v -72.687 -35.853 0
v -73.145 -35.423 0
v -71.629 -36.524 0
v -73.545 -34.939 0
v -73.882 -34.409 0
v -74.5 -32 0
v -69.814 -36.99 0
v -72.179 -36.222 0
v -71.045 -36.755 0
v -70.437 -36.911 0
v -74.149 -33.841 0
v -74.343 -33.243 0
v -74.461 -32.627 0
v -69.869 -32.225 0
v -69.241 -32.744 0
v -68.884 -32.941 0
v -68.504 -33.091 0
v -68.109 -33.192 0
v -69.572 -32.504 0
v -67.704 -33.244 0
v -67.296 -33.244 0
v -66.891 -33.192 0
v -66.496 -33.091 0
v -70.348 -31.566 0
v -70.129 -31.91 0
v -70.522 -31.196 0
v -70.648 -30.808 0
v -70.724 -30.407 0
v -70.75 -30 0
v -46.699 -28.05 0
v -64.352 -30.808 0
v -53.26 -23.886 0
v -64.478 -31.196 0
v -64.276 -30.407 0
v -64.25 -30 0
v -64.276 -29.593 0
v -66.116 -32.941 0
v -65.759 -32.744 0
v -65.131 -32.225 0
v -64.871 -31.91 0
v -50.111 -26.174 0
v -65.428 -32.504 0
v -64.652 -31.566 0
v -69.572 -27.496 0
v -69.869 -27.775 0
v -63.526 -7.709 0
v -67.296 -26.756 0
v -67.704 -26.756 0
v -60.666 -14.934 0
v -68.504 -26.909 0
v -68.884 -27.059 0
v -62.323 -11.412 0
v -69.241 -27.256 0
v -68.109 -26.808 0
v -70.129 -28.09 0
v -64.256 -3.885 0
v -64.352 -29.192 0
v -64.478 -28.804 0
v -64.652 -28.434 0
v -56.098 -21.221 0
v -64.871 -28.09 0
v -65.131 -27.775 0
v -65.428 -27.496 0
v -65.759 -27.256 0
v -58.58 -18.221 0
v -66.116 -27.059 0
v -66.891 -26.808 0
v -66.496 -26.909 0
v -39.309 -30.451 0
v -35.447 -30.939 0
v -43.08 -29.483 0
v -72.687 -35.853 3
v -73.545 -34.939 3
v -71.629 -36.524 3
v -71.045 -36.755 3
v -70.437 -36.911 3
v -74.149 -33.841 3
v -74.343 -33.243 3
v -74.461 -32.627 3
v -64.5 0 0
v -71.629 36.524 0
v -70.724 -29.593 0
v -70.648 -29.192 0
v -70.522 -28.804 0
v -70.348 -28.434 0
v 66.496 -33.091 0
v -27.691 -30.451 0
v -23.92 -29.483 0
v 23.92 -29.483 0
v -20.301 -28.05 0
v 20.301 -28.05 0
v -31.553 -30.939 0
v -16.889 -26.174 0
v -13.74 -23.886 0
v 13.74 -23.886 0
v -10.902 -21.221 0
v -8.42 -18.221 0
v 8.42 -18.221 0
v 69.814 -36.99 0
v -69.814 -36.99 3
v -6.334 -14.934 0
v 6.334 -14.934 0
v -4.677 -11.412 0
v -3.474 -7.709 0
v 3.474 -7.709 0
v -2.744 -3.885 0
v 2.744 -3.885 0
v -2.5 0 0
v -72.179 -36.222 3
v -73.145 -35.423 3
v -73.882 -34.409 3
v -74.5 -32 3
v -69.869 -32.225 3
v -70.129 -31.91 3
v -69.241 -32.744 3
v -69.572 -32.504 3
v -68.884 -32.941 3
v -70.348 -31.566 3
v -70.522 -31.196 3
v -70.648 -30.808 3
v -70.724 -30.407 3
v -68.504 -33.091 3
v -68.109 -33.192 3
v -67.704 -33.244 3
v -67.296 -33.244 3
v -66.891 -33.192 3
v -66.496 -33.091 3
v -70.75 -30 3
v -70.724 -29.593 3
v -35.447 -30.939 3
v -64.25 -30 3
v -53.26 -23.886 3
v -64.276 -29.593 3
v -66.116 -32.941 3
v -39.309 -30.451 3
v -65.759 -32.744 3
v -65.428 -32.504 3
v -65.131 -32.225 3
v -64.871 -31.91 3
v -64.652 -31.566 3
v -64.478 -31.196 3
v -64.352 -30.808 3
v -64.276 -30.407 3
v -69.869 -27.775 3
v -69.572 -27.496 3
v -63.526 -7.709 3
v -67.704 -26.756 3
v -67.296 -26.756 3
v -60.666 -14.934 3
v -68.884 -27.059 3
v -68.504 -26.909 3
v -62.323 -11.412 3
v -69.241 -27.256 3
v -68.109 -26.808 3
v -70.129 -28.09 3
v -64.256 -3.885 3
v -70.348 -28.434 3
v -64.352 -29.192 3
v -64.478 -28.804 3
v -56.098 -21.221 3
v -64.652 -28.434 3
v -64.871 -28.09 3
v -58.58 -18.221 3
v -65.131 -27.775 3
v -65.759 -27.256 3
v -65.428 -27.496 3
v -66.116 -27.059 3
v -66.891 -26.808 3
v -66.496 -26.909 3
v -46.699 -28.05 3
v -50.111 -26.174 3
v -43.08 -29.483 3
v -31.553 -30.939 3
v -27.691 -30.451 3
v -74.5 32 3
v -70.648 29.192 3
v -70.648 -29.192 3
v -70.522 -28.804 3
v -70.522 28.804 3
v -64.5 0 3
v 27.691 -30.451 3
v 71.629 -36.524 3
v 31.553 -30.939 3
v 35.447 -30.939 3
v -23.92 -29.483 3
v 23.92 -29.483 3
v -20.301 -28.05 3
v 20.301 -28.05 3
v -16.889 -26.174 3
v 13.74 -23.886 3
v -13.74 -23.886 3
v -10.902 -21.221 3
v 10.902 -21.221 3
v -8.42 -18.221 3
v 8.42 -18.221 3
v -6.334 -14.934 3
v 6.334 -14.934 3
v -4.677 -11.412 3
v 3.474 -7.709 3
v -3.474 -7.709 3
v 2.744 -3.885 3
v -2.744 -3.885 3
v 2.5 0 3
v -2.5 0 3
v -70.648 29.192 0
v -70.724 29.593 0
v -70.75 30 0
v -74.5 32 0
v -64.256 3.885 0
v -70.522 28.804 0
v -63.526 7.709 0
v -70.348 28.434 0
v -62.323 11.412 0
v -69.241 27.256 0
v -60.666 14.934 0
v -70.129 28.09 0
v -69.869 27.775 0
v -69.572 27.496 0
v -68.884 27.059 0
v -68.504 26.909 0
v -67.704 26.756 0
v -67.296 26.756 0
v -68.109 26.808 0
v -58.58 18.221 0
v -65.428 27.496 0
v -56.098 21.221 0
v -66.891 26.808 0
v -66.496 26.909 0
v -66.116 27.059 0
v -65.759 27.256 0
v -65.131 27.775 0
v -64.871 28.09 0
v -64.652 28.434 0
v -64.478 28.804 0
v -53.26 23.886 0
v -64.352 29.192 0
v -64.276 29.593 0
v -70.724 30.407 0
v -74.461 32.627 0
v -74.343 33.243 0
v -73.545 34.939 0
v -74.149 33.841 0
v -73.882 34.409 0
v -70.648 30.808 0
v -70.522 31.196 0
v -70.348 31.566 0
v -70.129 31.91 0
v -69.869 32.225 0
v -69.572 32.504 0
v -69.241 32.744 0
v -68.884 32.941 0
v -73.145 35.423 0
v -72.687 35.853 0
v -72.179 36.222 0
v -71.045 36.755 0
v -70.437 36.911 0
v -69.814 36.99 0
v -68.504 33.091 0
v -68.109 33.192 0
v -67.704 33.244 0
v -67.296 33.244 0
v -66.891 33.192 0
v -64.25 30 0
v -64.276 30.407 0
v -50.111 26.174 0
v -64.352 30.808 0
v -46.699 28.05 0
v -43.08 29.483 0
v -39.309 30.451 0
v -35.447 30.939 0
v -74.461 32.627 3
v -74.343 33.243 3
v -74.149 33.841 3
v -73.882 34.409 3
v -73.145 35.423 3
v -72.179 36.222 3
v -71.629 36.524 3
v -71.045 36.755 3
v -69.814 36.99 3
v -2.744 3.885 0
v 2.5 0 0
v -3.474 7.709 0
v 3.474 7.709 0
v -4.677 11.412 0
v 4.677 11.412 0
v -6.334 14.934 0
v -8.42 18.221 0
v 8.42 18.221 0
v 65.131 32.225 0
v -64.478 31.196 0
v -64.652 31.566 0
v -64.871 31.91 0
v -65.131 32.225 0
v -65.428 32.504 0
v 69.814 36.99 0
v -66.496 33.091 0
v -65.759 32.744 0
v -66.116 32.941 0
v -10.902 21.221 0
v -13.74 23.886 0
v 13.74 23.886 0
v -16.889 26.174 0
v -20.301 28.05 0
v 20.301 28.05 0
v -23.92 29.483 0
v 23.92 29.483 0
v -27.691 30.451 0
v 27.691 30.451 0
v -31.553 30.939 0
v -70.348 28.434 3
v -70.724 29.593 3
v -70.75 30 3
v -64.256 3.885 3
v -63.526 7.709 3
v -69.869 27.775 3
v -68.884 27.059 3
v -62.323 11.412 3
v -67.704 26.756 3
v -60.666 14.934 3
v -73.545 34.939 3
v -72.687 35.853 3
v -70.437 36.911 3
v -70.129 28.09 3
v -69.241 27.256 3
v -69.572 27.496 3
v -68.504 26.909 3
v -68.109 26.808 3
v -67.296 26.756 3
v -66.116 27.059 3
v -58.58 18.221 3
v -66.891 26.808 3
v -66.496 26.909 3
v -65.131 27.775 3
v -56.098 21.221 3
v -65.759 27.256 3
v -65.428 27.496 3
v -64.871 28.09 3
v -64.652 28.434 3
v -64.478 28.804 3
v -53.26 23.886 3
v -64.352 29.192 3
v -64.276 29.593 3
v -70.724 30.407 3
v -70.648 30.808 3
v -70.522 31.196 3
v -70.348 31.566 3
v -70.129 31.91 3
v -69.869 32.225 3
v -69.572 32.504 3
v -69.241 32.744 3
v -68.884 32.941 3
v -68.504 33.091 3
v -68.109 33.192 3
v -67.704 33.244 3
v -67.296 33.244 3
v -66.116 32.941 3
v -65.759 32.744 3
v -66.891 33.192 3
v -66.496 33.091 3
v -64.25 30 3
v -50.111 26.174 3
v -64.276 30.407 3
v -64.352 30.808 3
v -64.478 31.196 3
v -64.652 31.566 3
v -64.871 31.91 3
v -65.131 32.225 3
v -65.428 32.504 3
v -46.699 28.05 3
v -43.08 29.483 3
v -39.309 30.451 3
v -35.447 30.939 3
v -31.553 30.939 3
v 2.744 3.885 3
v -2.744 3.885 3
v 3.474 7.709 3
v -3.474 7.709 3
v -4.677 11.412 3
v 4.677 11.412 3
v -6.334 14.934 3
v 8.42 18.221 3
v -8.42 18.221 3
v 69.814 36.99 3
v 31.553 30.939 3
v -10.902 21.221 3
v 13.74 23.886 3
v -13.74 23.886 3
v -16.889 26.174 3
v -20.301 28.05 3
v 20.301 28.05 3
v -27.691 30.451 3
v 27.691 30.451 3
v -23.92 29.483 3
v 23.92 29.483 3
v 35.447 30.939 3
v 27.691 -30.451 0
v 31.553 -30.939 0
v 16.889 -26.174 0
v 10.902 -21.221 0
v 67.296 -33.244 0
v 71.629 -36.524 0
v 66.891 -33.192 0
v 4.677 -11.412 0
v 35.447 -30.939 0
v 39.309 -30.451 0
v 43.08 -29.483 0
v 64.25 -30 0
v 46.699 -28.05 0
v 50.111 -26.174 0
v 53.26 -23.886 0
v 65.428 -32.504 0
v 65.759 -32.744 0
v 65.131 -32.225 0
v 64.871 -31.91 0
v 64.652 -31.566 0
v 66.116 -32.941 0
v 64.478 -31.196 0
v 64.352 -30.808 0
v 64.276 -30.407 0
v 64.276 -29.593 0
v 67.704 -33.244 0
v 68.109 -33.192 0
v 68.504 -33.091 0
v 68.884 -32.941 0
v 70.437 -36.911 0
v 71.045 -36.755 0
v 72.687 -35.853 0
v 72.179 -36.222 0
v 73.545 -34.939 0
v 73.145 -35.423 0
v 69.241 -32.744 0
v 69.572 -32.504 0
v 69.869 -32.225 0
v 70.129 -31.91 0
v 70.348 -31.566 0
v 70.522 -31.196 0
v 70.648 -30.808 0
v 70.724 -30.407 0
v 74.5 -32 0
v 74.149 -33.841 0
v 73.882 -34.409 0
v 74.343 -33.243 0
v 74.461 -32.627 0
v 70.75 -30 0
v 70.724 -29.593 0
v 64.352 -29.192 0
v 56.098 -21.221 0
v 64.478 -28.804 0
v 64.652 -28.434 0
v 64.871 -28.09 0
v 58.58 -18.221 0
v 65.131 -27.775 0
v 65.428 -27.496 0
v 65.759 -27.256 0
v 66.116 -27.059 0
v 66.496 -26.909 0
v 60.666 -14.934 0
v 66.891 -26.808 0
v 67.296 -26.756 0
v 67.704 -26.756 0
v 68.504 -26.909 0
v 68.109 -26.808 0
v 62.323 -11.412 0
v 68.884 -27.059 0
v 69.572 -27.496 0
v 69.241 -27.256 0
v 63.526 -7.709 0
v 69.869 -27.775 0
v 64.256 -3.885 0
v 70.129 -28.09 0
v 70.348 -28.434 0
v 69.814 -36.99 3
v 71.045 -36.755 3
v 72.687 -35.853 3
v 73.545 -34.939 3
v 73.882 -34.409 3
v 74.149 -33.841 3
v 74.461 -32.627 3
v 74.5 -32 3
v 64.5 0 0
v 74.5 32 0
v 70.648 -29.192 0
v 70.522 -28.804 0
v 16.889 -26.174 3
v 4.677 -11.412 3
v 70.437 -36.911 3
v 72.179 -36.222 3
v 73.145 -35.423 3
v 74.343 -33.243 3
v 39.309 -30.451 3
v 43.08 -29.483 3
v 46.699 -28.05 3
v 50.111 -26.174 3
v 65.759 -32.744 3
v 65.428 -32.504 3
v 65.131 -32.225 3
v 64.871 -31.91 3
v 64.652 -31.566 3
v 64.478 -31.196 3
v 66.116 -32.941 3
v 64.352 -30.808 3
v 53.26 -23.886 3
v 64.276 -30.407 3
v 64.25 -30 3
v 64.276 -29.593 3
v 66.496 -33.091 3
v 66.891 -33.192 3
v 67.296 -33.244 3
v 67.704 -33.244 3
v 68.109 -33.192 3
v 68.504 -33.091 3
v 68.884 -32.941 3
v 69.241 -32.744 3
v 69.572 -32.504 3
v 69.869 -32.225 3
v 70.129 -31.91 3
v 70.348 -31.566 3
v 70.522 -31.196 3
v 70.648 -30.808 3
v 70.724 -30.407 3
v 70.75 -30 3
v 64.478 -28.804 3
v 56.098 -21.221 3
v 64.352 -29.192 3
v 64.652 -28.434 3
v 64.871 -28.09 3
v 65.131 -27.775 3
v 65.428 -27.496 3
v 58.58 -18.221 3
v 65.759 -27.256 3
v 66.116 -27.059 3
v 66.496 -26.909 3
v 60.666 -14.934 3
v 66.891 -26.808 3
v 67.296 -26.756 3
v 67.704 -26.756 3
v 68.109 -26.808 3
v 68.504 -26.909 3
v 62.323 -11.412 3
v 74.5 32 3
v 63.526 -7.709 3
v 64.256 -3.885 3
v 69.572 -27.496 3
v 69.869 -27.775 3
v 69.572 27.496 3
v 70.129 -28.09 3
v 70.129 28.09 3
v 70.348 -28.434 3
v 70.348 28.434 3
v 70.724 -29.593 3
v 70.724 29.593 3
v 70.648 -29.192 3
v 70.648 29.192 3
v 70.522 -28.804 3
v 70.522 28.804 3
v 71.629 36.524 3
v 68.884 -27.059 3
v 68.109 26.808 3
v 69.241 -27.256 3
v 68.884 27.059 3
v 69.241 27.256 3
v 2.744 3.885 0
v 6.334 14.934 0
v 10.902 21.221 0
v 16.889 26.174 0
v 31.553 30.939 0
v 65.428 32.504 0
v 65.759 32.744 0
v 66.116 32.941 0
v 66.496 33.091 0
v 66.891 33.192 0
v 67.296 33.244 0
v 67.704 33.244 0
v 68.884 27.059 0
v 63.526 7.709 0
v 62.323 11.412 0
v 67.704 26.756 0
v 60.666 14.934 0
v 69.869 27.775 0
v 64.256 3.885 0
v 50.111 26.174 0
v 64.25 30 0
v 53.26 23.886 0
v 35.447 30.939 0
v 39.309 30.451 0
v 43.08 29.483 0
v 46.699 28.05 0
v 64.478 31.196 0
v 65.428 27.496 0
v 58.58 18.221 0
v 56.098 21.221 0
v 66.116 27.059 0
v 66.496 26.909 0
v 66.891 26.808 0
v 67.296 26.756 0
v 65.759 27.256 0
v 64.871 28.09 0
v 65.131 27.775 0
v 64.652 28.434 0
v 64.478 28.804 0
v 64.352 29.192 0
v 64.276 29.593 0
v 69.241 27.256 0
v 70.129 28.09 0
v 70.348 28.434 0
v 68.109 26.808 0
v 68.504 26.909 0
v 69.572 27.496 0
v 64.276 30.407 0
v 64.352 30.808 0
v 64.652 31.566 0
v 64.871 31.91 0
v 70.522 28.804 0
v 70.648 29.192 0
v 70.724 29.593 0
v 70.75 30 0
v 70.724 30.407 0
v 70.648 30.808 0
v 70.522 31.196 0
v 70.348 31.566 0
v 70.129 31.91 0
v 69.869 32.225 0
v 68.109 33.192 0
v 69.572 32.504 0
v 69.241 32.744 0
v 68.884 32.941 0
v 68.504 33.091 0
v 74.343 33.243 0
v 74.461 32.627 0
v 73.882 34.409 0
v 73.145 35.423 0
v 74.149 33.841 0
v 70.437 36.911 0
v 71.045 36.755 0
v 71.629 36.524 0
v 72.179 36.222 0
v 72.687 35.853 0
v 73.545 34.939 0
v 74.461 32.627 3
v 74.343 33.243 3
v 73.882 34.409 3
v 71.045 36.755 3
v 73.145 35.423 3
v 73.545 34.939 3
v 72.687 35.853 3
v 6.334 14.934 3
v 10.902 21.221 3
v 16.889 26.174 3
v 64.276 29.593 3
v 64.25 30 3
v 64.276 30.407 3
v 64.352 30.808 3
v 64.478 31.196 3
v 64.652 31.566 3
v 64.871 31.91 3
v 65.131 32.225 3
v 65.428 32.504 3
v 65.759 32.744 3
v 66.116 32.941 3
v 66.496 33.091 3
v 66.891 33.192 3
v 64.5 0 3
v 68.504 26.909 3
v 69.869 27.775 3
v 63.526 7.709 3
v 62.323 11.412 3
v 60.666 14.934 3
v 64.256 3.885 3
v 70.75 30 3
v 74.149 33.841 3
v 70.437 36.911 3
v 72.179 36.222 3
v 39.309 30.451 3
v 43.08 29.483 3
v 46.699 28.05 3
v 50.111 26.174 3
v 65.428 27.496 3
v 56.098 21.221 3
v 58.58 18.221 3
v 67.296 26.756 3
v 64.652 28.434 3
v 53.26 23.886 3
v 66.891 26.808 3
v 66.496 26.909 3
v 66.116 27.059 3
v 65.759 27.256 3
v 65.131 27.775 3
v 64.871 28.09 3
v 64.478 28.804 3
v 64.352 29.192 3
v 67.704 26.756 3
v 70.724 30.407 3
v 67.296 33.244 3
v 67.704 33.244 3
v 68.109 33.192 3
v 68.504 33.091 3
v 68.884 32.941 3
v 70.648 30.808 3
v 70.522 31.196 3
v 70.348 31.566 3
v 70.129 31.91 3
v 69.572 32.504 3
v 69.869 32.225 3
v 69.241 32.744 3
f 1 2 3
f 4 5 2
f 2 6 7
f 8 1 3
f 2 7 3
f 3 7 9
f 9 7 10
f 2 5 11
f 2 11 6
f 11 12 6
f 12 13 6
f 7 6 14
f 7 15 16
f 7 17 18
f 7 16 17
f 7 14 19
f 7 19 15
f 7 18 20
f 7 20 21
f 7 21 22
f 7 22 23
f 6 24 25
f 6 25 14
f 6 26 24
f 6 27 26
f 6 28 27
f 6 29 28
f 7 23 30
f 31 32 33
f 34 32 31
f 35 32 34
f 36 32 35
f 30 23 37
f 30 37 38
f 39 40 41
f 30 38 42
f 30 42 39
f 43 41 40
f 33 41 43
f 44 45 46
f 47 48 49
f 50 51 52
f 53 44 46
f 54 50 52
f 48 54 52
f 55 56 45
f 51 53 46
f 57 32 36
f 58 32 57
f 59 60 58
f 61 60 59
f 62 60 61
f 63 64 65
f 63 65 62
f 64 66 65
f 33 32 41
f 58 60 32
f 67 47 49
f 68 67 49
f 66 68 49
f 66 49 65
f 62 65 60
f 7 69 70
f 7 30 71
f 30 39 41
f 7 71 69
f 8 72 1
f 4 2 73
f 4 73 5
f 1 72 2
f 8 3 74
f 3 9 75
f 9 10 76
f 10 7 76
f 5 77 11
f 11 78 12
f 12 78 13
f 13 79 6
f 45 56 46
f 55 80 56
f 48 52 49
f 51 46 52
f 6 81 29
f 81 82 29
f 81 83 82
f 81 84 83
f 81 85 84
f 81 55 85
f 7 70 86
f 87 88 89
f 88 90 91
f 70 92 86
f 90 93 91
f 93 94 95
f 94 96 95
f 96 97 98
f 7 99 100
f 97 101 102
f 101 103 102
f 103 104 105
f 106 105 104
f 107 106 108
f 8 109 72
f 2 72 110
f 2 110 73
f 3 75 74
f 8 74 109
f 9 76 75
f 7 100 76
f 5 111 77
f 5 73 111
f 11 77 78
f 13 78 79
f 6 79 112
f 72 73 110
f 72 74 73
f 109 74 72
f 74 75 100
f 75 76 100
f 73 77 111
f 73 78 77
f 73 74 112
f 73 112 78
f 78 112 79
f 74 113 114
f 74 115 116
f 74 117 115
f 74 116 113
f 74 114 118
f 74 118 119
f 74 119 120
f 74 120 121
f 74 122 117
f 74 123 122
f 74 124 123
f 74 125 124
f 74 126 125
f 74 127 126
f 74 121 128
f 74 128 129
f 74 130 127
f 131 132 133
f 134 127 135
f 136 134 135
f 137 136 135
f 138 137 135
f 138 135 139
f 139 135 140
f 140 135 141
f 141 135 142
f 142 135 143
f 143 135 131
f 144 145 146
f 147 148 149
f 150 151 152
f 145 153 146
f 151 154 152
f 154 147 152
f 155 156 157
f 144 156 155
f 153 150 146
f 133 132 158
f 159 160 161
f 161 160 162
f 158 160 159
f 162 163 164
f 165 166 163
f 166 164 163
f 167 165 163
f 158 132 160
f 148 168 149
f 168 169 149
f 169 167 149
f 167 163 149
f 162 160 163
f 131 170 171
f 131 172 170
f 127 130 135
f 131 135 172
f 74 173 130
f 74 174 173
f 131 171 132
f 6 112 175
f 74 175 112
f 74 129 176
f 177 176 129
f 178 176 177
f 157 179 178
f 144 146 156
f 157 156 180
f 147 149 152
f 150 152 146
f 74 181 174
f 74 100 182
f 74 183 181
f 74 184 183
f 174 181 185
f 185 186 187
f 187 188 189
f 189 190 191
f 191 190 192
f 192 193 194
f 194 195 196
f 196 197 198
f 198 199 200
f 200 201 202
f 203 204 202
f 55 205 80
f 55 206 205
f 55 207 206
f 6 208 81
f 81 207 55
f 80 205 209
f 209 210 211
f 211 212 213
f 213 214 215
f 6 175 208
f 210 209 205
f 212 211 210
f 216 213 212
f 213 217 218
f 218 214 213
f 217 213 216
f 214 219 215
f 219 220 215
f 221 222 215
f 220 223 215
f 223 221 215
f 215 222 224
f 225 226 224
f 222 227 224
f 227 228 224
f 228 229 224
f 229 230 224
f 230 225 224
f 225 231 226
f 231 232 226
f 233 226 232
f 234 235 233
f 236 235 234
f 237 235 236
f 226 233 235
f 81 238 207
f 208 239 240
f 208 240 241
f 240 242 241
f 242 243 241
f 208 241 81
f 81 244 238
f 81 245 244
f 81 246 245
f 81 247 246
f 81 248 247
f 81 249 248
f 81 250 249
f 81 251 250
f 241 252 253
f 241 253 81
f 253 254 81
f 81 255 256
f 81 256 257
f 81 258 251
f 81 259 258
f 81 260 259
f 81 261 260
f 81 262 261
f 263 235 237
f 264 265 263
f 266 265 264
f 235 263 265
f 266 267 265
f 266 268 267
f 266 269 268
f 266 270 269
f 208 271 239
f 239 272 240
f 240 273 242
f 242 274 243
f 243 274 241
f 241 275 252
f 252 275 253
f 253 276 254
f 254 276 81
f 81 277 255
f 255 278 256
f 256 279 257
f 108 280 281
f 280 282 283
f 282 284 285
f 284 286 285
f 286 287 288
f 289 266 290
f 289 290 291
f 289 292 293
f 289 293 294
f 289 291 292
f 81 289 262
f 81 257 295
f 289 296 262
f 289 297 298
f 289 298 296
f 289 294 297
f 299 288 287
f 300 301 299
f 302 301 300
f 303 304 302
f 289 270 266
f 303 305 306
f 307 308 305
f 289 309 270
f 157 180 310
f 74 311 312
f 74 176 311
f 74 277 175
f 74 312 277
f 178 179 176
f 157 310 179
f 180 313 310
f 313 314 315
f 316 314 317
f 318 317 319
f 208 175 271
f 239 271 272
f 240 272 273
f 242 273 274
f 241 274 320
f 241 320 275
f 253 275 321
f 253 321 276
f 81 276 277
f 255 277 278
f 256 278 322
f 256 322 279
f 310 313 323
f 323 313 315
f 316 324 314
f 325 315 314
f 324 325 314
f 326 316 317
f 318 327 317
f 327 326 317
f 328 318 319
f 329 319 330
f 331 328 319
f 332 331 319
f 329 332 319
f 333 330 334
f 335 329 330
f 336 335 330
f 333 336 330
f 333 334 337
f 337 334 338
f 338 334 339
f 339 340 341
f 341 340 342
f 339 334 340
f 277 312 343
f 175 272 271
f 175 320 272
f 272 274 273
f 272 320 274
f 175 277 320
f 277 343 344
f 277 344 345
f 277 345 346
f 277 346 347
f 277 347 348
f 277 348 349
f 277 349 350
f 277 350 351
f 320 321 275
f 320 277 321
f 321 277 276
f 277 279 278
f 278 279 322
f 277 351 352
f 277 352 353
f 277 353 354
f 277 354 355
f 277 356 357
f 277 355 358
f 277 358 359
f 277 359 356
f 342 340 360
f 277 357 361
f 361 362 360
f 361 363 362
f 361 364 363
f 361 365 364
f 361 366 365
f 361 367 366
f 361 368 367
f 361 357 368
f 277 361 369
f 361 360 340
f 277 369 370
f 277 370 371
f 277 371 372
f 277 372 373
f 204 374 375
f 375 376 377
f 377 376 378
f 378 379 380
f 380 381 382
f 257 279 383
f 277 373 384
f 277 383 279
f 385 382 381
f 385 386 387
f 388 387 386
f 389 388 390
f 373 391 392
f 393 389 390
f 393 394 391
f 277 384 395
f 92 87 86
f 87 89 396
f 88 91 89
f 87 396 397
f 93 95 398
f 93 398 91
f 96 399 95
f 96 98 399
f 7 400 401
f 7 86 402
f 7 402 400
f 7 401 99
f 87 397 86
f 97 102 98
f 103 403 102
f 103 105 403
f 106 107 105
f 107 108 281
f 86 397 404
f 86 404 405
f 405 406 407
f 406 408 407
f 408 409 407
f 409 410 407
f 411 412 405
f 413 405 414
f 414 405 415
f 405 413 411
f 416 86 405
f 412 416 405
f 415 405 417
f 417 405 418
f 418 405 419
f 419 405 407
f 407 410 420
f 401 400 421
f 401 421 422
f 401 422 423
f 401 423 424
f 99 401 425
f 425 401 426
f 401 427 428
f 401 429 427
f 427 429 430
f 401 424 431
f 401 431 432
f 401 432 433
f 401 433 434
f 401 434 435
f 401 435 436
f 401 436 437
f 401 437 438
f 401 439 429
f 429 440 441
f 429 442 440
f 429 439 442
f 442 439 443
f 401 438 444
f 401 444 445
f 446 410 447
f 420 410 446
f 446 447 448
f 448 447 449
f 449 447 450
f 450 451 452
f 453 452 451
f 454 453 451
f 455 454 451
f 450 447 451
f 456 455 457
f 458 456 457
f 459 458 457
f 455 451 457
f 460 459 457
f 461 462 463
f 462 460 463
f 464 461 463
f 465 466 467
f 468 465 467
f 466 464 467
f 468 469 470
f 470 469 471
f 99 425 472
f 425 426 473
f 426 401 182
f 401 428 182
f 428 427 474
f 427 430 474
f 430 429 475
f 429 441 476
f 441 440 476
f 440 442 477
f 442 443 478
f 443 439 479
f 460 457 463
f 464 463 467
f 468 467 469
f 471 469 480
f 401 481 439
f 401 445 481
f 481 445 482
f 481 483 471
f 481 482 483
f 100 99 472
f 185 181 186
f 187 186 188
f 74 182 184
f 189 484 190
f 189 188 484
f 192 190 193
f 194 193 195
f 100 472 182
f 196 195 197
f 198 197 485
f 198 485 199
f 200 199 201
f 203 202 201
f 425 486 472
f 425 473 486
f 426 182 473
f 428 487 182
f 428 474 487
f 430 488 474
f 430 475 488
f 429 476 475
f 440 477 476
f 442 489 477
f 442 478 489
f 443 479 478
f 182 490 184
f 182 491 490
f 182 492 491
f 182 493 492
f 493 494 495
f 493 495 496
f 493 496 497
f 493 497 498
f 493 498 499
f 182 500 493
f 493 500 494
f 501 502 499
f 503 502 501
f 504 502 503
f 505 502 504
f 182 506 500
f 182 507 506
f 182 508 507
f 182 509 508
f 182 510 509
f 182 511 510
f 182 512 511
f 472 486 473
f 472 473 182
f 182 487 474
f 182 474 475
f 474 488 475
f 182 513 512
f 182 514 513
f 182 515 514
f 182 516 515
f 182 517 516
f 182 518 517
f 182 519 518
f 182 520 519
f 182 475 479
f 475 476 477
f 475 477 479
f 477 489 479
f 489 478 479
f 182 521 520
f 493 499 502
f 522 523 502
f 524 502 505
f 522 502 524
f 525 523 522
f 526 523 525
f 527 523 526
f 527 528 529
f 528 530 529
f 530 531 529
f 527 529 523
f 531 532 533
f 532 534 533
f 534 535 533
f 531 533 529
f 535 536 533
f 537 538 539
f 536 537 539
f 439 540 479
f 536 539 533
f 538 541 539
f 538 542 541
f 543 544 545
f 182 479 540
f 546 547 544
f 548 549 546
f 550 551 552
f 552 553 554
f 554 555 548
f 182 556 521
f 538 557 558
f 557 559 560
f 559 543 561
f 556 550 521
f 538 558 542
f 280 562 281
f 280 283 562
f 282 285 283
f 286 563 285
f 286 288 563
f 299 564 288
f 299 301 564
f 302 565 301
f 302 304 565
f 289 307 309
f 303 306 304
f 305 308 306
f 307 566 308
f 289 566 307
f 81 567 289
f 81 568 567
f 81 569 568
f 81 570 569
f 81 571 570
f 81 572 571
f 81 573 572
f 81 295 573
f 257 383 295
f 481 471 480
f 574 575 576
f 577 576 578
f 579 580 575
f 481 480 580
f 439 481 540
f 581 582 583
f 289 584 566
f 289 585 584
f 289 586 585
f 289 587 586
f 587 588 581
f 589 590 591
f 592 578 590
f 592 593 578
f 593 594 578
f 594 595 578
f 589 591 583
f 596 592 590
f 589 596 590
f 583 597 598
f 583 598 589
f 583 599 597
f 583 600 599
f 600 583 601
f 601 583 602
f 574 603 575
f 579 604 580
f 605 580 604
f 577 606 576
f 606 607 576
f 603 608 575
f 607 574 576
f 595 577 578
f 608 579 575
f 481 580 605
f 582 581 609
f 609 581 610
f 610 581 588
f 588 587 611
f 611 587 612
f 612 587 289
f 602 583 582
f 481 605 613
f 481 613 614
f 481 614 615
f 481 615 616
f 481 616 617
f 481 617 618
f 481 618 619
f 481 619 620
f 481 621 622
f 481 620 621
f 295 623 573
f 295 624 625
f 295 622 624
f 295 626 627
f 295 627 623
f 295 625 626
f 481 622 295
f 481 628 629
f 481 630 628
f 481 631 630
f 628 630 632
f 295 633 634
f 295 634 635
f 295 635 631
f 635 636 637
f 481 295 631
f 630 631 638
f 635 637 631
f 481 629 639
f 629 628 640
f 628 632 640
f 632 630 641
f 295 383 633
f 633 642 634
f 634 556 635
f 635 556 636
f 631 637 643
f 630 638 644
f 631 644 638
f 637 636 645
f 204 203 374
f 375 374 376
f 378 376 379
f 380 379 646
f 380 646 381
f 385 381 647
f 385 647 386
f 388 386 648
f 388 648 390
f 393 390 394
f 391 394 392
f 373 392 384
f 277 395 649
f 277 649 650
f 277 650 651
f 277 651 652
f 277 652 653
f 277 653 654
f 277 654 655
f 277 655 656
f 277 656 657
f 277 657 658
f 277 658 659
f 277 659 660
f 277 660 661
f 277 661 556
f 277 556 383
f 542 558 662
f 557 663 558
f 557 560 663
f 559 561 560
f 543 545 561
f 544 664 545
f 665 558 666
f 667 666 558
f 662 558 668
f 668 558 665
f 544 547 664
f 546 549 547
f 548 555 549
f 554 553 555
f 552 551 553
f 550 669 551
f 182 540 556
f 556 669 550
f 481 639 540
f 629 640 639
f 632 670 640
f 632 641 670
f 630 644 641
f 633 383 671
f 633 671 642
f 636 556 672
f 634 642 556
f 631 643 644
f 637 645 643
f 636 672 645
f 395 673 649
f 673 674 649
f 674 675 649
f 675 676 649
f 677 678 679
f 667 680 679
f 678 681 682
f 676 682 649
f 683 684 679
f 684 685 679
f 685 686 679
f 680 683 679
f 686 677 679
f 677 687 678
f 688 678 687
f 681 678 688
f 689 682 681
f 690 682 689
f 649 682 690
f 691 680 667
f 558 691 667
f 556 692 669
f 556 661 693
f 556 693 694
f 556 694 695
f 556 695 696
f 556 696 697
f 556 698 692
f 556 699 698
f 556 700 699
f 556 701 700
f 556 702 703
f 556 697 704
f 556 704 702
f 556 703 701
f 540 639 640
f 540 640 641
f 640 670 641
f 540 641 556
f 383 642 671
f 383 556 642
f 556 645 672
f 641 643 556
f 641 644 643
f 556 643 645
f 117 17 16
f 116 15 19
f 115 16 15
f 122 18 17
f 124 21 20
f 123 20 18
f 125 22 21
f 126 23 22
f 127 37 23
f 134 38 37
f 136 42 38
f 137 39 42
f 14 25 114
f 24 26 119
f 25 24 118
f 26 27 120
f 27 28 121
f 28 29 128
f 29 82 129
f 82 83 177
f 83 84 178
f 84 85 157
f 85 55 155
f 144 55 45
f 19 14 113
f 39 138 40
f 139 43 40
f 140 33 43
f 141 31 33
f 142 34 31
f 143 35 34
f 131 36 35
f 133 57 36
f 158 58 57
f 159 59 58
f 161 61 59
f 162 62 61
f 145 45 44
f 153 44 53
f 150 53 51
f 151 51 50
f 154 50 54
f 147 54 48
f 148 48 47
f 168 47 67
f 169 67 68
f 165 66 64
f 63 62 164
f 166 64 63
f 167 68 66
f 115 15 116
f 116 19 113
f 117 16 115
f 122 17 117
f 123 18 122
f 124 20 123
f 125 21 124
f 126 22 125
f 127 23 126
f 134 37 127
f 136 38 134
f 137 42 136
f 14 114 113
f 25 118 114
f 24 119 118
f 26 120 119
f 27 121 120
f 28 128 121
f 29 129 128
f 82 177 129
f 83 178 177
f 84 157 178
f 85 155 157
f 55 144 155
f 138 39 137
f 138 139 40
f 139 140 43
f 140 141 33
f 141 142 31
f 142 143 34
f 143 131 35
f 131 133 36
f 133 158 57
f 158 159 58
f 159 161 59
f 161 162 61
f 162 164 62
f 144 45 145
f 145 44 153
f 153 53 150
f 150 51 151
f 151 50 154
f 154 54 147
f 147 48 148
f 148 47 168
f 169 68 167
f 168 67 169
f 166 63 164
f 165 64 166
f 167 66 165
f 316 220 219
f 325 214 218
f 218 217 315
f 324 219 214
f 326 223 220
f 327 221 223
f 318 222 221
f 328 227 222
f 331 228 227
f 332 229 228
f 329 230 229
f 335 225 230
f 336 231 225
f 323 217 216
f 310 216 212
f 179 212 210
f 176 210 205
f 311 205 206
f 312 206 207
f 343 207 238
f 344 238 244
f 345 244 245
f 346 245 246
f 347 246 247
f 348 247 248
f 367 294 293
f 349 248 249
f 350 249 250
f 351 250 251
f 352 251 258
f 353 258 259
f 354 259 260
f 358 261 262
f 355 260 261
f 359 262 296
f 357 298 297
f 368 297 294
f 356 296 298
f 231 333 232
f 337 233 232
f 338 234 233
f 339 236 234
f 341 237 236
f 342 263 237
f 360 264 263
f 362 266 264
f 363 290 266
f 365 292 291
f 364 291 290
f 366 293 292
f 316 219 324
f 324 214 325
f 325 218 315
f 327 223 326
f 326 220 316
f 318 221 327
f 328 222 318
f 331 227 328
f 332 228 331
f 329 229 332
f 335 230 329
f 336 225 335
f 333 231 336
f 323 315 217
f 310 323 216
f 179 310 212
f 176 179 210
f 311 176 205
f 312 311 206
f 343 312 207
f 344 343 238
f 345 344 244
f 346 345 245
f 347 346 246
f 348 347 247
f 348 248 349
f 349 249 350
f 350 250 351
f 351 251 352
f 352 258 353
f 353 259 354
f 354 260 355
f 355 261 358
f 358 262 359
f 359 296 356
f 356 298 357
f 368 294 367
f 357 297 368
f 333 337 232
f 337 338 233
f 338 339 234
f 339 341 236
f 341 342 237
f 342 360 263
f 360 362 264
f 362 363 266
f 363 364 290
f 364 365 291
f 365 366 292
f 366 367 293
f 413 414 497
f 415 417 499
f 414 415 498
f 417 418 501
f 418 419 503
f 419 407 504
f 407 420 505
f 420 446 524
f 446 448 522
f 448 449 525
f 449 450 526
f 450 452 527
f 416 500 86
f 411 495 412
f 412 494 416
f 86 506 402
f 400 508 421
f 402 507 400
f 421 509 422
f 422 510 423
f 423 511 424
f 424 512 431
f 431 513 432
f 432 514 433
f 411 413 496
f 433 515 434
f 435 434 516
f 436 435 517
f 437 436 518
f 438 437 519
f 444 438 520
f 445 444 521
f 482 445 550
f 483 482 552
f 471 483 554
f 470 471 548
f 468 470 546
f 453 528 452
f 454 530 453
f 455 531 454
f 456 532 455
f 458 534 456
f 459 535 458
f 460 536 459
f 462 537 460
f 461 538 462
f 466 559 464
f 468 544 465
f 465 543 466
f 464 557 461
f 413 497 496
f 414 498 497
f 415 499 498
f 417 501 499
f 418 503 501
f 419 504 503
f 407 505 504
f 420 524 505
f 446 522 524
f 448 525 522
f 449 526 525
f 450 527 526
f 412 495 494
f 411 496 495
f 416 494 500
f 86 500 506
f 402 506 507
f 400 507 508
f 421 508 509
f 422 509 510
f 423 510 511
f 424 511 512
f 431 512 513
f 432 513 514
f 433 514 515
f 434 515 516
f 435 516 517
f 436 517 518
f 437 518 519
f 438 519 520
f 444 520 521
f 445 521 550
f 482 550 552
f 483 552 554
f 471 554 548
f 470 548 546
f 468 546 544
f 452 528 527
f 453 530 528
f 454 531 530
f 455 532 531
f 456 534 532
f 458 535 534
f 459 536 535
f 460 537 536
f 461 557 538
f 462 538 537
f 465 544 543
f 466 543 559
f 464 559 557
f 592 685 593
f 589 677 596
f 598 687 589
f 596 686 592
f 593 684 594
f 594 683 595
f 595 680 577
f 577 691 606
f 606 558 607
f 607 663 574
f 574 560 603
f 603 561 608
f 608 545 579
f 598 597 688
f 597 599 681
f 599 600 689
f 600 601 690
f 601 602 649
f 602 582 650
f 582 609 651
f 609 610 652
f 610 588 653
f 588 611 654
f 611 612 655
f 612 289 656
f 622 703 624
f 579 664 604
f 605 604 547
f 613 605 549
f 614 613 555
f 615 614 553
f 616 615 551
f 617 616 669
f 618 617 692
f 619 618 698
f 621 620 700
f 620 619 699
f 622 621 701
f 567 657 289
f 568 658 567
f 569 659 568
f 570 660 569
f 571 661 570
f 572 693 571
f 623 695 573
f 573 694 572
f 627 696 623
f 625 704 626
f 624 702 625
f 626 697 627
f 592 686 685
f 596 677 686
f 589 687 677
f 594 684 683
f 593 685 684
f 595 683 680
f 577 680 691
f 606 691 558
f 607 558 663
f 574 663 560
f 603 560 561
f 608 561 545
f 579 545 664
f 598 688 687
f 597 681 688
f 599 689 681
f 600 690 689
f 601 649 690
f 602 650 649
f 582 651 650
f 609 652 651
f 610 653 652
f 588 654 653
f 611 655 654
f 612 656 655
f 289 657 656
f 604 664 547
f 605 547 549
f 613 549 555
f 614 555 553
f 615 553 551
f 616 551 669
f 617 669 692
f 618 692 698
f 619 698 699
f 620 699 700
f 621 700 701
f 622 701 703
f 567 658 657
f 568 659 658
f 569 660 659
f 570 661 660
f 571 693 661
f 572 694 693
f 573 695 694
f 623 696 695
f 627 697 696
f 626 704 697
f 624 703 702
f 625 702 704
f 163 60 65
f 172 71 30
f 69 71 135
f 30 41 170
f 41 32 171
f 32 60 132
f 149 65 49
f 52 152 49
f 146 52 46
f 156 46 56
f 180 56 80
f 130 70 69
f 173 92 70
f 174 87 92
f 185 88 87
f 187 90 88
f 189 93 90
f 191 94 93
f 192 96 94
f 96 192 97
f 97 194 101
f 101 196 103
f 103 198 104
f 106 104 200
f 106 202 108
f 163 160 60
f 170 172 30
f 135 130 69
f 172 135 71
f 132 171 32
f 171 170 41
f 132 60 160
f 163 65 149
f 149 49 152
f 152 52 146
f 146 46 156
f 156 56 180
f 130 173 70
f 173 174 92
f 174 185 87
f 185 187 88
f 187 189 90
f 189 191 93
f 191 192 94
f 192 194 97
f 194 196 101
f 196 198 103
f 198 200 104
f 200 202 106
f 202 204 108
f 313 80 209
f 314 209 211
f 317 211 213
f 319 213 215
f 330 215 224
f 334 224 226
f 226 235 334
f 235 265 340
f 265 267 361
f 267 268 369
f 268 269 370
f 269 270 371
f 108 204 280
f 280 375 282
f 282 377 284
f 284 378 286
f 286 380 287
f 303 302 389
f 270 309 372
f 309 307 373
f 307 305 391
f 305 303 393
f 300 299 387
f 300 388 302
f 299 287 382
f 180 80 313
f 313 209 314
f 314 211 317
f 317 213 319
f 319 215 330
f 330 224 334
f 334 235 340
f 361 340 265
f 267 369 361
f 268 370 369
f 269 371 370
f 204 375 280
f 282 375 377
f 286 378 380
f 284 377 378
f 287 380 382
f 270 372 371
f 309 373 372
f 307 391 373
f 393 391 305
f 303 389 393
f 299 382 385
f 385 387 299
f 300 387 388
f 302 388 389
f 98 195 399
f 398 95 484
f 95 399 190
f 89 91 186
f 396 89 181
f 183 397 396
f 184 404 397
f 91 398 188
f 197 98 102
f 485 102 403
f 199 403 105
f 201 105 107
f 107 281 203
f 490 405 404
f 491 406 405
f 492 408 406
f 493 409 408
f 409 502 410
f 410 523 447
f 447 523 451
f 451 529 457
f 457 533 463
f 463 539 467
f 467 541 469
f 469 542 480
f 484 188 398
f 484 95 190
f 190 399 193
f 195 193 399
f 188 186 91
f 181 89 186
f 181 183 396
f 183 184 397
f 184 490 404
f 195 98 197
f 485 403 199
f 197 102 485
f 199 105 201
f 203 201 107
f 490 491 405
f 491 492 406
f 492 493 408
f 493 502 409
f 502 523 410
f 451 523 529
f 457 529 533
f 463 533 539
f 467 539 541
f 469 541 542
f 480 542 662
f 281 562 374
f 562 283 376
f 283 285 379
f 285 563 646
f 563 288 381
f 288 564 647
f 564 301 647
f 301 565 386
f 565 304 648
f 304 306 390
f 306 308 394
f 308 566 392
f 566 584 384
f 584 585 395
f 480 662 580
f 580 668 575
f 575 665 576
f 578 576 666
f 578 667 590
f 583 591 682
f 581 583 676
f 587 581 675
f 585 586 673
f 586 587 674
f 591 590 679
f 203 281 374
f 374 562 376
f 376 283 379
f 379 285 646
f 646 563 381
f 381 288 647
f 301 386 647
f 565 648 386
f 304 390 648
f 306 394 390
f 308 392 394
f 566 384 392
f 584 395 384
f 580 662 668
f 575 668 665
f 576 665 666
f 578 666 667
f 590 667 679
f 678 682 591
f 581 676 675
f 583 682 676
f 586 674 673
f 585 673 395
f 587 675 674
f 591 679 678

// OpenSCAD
$fn = 50;

difference() {
	union() {
		hull() {
			translate(v = [-69.5, 32.0, 0]) {
				cylinder(h = 3, r = 5);
			}
			translate(v = [69.5, 32.0, 0]) {
				cylinder(h = 3, r = 5);
			}
			translate(v = [-69.5, -32.0, 0]) {
				cylinder(h = 3, r = 5);
			}
			translate(v = [69.5, -32.0, 0]) {
				cylinder(h = 3, r = 5);
			}
		}
	}
	union() {
		translate(v = [-67.5, -30.0, -100.0]) {
			cylinder(h = 200, r = 3.25);
		}
		translate(v = [-67.5, 30.0, -100.0]) {
			cylinder(h = 200, r = 3.25);
		}
		translate(v = [67.5, -30.0, -100.0]) {
			cylinder(h = 200, r = 3.25);
		}
		translate(v = [67.5, 30.0, -100.0]) {
			cylinder(h = 200, r = 3.25);
		}
		translate(v = [-67.5, -30.0, -100.0]) {
			cylinder(h = 200, r = 1.8);
		}
		translate(v = [-67.5, 30.0, -100.0]) {
			cylinder(h = 200, r = 1.8);
		}
		translate(v = [67.5, -30.0, -100.0]) {
			cylinder(h = 200, r = 1.8);
		}
		translate(v = [67.5, 30.0, -100.0]) {
			cylinder(h = 200, r = 1.8);
		}
		translate(v = [-33.5, 0, 0.0]) {
			cylinder(h = 3, r = 31.0);
		}
		translate(v = [33.5, 0, 0.0]) {
			cylinder(h = 3, r = 31.0);
		}
	}
}
